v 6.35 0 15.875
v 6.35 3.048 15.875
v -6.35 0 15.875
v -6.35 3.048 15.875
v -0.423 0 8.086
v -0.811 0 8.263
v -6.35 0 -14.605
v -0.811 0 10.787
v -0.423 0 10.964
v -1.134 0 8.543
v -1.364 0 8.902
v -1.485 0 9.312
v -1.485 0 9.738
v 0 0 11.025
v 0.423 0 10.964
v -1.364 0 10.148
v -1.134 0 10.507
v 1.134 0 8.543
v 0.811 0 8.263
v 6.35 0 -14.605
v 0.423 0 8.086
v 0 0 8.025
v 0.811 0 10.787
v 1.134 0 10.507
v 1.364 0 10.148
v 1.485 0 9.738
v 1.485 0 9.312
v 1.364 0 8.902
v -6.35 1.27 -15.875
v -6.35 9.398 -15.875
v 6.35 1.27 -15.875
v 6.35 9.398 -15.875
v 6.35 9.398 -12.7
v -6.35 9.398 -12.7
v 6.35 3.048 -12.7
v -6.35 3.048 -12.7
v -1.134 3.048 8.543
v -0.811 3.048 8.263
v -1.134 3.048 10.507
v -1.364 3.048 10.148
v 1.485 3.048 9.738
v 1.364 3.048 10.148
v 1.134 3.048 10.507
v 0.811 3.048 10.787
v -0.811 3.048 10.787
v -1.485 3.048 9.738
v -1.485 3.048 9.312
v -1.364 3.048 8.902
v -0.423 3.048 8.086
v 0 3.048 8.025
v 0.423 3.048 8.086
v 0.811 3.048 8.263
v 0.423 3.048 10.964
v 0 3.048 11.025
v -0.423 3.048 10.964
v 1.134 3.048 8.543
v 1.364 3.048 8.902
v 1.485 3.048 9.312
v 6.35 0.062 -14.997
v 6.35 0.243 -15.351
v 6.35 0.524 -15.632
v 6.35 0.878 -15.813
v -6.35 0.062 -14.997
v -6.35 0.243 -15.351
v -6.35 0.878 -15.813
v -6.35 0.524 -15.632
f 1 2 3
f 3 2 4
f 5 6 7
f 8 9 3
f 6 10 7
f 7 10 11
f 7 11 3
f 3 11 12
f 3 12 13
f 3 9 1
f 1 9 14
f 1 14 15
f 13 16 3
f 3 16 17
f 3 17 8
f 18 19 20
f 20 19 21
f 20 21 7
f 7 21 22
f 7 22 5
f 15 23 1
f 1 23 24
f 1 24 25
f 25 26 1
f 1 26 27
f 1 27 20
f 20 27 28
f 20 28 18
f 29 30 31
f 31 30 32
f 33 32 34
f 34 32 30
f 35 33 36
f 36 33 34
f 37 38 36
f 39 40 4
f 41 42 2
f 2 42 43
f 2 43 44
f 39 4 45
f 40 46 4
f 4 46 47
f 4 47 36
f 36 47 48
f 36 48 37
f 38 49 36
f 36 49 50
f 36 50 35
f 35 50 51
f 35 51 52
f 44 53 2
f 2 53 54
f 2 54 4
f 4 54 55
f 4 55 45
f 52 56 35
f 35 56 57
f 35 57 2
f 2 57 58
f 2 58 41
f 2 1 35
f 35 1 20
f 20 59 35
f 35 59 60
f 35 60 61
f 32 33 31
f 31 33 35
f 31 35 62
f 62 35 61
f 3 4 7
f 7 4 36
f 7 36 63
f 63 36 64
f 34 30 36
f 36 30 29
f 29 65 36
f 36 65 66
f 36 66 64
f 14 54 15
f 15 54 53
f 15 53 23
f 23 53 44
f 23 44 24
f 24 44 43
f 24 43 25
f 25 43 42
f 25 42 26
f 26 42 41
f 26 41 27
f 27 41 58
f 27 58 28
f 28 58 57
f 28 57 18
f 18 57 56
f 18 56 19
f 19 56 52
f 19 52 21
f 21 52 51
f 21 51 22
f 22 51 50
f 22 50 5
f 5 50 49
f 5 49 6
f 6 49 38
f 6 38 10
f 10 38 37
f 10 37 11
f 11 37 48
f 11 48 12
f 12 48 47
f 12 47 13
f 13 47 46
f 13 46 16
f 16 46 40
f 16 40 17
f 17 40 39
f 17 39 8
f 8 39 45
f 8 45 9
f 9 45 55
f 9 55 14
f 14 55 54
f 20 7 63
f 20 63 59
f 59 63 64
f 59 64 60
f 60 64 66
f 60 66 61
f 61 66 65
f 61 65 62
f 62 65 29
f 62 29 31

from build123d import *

# Parameters (mm, degrees)
BOSS_EXTRUDE1_DEPTH = 6.35
SKETCH4_R           = 1.5
CUT_EXTRUDE1_DEPTH  = 19.238986403
FILLET1_R           = 1.27


with BuildPart() as part:
    # Sketch1 → Boss-Extrude1 (new, symmetric)
    with BuildSketch(Plane(origin=(0, 0, 0), x_dir=(0, 0, -1), z_dir=(1, 0, 0))):
        Polygon((-15.875, 0), (15.875, 0), (15.875, 9.398), (12.7, 9.398), (12.7, 3.048), (-15.875, 3.048), align=None)
    extrude(amount=BOSS_EXTRUDE1_DEPTH, both=True)

    # Sketch4 → Cut-Extrude1 (cut, through all)
    with BuildSketch(Plane(origin=(0, 3.048, 0), x_dir=(1, 0, 0), z_dir=(0, 1, 0))):
        with Locations(Location((0, -9.525, 0), (0, 0, 270))):
            Circle(SKETCH4_R)
    extrude(amount=-CUT_EXTRUDE1_DEPTH, mode=Mode.SUBTRACT)

    # Fillet1
    fillet1_edges = [part.edges().sort_by_distance(p)[0] for p in [
        (0, 0, -15.875),
    ]]
    fillet(fillet1_edges, radius=FILLET1_R)


solid = part.part
